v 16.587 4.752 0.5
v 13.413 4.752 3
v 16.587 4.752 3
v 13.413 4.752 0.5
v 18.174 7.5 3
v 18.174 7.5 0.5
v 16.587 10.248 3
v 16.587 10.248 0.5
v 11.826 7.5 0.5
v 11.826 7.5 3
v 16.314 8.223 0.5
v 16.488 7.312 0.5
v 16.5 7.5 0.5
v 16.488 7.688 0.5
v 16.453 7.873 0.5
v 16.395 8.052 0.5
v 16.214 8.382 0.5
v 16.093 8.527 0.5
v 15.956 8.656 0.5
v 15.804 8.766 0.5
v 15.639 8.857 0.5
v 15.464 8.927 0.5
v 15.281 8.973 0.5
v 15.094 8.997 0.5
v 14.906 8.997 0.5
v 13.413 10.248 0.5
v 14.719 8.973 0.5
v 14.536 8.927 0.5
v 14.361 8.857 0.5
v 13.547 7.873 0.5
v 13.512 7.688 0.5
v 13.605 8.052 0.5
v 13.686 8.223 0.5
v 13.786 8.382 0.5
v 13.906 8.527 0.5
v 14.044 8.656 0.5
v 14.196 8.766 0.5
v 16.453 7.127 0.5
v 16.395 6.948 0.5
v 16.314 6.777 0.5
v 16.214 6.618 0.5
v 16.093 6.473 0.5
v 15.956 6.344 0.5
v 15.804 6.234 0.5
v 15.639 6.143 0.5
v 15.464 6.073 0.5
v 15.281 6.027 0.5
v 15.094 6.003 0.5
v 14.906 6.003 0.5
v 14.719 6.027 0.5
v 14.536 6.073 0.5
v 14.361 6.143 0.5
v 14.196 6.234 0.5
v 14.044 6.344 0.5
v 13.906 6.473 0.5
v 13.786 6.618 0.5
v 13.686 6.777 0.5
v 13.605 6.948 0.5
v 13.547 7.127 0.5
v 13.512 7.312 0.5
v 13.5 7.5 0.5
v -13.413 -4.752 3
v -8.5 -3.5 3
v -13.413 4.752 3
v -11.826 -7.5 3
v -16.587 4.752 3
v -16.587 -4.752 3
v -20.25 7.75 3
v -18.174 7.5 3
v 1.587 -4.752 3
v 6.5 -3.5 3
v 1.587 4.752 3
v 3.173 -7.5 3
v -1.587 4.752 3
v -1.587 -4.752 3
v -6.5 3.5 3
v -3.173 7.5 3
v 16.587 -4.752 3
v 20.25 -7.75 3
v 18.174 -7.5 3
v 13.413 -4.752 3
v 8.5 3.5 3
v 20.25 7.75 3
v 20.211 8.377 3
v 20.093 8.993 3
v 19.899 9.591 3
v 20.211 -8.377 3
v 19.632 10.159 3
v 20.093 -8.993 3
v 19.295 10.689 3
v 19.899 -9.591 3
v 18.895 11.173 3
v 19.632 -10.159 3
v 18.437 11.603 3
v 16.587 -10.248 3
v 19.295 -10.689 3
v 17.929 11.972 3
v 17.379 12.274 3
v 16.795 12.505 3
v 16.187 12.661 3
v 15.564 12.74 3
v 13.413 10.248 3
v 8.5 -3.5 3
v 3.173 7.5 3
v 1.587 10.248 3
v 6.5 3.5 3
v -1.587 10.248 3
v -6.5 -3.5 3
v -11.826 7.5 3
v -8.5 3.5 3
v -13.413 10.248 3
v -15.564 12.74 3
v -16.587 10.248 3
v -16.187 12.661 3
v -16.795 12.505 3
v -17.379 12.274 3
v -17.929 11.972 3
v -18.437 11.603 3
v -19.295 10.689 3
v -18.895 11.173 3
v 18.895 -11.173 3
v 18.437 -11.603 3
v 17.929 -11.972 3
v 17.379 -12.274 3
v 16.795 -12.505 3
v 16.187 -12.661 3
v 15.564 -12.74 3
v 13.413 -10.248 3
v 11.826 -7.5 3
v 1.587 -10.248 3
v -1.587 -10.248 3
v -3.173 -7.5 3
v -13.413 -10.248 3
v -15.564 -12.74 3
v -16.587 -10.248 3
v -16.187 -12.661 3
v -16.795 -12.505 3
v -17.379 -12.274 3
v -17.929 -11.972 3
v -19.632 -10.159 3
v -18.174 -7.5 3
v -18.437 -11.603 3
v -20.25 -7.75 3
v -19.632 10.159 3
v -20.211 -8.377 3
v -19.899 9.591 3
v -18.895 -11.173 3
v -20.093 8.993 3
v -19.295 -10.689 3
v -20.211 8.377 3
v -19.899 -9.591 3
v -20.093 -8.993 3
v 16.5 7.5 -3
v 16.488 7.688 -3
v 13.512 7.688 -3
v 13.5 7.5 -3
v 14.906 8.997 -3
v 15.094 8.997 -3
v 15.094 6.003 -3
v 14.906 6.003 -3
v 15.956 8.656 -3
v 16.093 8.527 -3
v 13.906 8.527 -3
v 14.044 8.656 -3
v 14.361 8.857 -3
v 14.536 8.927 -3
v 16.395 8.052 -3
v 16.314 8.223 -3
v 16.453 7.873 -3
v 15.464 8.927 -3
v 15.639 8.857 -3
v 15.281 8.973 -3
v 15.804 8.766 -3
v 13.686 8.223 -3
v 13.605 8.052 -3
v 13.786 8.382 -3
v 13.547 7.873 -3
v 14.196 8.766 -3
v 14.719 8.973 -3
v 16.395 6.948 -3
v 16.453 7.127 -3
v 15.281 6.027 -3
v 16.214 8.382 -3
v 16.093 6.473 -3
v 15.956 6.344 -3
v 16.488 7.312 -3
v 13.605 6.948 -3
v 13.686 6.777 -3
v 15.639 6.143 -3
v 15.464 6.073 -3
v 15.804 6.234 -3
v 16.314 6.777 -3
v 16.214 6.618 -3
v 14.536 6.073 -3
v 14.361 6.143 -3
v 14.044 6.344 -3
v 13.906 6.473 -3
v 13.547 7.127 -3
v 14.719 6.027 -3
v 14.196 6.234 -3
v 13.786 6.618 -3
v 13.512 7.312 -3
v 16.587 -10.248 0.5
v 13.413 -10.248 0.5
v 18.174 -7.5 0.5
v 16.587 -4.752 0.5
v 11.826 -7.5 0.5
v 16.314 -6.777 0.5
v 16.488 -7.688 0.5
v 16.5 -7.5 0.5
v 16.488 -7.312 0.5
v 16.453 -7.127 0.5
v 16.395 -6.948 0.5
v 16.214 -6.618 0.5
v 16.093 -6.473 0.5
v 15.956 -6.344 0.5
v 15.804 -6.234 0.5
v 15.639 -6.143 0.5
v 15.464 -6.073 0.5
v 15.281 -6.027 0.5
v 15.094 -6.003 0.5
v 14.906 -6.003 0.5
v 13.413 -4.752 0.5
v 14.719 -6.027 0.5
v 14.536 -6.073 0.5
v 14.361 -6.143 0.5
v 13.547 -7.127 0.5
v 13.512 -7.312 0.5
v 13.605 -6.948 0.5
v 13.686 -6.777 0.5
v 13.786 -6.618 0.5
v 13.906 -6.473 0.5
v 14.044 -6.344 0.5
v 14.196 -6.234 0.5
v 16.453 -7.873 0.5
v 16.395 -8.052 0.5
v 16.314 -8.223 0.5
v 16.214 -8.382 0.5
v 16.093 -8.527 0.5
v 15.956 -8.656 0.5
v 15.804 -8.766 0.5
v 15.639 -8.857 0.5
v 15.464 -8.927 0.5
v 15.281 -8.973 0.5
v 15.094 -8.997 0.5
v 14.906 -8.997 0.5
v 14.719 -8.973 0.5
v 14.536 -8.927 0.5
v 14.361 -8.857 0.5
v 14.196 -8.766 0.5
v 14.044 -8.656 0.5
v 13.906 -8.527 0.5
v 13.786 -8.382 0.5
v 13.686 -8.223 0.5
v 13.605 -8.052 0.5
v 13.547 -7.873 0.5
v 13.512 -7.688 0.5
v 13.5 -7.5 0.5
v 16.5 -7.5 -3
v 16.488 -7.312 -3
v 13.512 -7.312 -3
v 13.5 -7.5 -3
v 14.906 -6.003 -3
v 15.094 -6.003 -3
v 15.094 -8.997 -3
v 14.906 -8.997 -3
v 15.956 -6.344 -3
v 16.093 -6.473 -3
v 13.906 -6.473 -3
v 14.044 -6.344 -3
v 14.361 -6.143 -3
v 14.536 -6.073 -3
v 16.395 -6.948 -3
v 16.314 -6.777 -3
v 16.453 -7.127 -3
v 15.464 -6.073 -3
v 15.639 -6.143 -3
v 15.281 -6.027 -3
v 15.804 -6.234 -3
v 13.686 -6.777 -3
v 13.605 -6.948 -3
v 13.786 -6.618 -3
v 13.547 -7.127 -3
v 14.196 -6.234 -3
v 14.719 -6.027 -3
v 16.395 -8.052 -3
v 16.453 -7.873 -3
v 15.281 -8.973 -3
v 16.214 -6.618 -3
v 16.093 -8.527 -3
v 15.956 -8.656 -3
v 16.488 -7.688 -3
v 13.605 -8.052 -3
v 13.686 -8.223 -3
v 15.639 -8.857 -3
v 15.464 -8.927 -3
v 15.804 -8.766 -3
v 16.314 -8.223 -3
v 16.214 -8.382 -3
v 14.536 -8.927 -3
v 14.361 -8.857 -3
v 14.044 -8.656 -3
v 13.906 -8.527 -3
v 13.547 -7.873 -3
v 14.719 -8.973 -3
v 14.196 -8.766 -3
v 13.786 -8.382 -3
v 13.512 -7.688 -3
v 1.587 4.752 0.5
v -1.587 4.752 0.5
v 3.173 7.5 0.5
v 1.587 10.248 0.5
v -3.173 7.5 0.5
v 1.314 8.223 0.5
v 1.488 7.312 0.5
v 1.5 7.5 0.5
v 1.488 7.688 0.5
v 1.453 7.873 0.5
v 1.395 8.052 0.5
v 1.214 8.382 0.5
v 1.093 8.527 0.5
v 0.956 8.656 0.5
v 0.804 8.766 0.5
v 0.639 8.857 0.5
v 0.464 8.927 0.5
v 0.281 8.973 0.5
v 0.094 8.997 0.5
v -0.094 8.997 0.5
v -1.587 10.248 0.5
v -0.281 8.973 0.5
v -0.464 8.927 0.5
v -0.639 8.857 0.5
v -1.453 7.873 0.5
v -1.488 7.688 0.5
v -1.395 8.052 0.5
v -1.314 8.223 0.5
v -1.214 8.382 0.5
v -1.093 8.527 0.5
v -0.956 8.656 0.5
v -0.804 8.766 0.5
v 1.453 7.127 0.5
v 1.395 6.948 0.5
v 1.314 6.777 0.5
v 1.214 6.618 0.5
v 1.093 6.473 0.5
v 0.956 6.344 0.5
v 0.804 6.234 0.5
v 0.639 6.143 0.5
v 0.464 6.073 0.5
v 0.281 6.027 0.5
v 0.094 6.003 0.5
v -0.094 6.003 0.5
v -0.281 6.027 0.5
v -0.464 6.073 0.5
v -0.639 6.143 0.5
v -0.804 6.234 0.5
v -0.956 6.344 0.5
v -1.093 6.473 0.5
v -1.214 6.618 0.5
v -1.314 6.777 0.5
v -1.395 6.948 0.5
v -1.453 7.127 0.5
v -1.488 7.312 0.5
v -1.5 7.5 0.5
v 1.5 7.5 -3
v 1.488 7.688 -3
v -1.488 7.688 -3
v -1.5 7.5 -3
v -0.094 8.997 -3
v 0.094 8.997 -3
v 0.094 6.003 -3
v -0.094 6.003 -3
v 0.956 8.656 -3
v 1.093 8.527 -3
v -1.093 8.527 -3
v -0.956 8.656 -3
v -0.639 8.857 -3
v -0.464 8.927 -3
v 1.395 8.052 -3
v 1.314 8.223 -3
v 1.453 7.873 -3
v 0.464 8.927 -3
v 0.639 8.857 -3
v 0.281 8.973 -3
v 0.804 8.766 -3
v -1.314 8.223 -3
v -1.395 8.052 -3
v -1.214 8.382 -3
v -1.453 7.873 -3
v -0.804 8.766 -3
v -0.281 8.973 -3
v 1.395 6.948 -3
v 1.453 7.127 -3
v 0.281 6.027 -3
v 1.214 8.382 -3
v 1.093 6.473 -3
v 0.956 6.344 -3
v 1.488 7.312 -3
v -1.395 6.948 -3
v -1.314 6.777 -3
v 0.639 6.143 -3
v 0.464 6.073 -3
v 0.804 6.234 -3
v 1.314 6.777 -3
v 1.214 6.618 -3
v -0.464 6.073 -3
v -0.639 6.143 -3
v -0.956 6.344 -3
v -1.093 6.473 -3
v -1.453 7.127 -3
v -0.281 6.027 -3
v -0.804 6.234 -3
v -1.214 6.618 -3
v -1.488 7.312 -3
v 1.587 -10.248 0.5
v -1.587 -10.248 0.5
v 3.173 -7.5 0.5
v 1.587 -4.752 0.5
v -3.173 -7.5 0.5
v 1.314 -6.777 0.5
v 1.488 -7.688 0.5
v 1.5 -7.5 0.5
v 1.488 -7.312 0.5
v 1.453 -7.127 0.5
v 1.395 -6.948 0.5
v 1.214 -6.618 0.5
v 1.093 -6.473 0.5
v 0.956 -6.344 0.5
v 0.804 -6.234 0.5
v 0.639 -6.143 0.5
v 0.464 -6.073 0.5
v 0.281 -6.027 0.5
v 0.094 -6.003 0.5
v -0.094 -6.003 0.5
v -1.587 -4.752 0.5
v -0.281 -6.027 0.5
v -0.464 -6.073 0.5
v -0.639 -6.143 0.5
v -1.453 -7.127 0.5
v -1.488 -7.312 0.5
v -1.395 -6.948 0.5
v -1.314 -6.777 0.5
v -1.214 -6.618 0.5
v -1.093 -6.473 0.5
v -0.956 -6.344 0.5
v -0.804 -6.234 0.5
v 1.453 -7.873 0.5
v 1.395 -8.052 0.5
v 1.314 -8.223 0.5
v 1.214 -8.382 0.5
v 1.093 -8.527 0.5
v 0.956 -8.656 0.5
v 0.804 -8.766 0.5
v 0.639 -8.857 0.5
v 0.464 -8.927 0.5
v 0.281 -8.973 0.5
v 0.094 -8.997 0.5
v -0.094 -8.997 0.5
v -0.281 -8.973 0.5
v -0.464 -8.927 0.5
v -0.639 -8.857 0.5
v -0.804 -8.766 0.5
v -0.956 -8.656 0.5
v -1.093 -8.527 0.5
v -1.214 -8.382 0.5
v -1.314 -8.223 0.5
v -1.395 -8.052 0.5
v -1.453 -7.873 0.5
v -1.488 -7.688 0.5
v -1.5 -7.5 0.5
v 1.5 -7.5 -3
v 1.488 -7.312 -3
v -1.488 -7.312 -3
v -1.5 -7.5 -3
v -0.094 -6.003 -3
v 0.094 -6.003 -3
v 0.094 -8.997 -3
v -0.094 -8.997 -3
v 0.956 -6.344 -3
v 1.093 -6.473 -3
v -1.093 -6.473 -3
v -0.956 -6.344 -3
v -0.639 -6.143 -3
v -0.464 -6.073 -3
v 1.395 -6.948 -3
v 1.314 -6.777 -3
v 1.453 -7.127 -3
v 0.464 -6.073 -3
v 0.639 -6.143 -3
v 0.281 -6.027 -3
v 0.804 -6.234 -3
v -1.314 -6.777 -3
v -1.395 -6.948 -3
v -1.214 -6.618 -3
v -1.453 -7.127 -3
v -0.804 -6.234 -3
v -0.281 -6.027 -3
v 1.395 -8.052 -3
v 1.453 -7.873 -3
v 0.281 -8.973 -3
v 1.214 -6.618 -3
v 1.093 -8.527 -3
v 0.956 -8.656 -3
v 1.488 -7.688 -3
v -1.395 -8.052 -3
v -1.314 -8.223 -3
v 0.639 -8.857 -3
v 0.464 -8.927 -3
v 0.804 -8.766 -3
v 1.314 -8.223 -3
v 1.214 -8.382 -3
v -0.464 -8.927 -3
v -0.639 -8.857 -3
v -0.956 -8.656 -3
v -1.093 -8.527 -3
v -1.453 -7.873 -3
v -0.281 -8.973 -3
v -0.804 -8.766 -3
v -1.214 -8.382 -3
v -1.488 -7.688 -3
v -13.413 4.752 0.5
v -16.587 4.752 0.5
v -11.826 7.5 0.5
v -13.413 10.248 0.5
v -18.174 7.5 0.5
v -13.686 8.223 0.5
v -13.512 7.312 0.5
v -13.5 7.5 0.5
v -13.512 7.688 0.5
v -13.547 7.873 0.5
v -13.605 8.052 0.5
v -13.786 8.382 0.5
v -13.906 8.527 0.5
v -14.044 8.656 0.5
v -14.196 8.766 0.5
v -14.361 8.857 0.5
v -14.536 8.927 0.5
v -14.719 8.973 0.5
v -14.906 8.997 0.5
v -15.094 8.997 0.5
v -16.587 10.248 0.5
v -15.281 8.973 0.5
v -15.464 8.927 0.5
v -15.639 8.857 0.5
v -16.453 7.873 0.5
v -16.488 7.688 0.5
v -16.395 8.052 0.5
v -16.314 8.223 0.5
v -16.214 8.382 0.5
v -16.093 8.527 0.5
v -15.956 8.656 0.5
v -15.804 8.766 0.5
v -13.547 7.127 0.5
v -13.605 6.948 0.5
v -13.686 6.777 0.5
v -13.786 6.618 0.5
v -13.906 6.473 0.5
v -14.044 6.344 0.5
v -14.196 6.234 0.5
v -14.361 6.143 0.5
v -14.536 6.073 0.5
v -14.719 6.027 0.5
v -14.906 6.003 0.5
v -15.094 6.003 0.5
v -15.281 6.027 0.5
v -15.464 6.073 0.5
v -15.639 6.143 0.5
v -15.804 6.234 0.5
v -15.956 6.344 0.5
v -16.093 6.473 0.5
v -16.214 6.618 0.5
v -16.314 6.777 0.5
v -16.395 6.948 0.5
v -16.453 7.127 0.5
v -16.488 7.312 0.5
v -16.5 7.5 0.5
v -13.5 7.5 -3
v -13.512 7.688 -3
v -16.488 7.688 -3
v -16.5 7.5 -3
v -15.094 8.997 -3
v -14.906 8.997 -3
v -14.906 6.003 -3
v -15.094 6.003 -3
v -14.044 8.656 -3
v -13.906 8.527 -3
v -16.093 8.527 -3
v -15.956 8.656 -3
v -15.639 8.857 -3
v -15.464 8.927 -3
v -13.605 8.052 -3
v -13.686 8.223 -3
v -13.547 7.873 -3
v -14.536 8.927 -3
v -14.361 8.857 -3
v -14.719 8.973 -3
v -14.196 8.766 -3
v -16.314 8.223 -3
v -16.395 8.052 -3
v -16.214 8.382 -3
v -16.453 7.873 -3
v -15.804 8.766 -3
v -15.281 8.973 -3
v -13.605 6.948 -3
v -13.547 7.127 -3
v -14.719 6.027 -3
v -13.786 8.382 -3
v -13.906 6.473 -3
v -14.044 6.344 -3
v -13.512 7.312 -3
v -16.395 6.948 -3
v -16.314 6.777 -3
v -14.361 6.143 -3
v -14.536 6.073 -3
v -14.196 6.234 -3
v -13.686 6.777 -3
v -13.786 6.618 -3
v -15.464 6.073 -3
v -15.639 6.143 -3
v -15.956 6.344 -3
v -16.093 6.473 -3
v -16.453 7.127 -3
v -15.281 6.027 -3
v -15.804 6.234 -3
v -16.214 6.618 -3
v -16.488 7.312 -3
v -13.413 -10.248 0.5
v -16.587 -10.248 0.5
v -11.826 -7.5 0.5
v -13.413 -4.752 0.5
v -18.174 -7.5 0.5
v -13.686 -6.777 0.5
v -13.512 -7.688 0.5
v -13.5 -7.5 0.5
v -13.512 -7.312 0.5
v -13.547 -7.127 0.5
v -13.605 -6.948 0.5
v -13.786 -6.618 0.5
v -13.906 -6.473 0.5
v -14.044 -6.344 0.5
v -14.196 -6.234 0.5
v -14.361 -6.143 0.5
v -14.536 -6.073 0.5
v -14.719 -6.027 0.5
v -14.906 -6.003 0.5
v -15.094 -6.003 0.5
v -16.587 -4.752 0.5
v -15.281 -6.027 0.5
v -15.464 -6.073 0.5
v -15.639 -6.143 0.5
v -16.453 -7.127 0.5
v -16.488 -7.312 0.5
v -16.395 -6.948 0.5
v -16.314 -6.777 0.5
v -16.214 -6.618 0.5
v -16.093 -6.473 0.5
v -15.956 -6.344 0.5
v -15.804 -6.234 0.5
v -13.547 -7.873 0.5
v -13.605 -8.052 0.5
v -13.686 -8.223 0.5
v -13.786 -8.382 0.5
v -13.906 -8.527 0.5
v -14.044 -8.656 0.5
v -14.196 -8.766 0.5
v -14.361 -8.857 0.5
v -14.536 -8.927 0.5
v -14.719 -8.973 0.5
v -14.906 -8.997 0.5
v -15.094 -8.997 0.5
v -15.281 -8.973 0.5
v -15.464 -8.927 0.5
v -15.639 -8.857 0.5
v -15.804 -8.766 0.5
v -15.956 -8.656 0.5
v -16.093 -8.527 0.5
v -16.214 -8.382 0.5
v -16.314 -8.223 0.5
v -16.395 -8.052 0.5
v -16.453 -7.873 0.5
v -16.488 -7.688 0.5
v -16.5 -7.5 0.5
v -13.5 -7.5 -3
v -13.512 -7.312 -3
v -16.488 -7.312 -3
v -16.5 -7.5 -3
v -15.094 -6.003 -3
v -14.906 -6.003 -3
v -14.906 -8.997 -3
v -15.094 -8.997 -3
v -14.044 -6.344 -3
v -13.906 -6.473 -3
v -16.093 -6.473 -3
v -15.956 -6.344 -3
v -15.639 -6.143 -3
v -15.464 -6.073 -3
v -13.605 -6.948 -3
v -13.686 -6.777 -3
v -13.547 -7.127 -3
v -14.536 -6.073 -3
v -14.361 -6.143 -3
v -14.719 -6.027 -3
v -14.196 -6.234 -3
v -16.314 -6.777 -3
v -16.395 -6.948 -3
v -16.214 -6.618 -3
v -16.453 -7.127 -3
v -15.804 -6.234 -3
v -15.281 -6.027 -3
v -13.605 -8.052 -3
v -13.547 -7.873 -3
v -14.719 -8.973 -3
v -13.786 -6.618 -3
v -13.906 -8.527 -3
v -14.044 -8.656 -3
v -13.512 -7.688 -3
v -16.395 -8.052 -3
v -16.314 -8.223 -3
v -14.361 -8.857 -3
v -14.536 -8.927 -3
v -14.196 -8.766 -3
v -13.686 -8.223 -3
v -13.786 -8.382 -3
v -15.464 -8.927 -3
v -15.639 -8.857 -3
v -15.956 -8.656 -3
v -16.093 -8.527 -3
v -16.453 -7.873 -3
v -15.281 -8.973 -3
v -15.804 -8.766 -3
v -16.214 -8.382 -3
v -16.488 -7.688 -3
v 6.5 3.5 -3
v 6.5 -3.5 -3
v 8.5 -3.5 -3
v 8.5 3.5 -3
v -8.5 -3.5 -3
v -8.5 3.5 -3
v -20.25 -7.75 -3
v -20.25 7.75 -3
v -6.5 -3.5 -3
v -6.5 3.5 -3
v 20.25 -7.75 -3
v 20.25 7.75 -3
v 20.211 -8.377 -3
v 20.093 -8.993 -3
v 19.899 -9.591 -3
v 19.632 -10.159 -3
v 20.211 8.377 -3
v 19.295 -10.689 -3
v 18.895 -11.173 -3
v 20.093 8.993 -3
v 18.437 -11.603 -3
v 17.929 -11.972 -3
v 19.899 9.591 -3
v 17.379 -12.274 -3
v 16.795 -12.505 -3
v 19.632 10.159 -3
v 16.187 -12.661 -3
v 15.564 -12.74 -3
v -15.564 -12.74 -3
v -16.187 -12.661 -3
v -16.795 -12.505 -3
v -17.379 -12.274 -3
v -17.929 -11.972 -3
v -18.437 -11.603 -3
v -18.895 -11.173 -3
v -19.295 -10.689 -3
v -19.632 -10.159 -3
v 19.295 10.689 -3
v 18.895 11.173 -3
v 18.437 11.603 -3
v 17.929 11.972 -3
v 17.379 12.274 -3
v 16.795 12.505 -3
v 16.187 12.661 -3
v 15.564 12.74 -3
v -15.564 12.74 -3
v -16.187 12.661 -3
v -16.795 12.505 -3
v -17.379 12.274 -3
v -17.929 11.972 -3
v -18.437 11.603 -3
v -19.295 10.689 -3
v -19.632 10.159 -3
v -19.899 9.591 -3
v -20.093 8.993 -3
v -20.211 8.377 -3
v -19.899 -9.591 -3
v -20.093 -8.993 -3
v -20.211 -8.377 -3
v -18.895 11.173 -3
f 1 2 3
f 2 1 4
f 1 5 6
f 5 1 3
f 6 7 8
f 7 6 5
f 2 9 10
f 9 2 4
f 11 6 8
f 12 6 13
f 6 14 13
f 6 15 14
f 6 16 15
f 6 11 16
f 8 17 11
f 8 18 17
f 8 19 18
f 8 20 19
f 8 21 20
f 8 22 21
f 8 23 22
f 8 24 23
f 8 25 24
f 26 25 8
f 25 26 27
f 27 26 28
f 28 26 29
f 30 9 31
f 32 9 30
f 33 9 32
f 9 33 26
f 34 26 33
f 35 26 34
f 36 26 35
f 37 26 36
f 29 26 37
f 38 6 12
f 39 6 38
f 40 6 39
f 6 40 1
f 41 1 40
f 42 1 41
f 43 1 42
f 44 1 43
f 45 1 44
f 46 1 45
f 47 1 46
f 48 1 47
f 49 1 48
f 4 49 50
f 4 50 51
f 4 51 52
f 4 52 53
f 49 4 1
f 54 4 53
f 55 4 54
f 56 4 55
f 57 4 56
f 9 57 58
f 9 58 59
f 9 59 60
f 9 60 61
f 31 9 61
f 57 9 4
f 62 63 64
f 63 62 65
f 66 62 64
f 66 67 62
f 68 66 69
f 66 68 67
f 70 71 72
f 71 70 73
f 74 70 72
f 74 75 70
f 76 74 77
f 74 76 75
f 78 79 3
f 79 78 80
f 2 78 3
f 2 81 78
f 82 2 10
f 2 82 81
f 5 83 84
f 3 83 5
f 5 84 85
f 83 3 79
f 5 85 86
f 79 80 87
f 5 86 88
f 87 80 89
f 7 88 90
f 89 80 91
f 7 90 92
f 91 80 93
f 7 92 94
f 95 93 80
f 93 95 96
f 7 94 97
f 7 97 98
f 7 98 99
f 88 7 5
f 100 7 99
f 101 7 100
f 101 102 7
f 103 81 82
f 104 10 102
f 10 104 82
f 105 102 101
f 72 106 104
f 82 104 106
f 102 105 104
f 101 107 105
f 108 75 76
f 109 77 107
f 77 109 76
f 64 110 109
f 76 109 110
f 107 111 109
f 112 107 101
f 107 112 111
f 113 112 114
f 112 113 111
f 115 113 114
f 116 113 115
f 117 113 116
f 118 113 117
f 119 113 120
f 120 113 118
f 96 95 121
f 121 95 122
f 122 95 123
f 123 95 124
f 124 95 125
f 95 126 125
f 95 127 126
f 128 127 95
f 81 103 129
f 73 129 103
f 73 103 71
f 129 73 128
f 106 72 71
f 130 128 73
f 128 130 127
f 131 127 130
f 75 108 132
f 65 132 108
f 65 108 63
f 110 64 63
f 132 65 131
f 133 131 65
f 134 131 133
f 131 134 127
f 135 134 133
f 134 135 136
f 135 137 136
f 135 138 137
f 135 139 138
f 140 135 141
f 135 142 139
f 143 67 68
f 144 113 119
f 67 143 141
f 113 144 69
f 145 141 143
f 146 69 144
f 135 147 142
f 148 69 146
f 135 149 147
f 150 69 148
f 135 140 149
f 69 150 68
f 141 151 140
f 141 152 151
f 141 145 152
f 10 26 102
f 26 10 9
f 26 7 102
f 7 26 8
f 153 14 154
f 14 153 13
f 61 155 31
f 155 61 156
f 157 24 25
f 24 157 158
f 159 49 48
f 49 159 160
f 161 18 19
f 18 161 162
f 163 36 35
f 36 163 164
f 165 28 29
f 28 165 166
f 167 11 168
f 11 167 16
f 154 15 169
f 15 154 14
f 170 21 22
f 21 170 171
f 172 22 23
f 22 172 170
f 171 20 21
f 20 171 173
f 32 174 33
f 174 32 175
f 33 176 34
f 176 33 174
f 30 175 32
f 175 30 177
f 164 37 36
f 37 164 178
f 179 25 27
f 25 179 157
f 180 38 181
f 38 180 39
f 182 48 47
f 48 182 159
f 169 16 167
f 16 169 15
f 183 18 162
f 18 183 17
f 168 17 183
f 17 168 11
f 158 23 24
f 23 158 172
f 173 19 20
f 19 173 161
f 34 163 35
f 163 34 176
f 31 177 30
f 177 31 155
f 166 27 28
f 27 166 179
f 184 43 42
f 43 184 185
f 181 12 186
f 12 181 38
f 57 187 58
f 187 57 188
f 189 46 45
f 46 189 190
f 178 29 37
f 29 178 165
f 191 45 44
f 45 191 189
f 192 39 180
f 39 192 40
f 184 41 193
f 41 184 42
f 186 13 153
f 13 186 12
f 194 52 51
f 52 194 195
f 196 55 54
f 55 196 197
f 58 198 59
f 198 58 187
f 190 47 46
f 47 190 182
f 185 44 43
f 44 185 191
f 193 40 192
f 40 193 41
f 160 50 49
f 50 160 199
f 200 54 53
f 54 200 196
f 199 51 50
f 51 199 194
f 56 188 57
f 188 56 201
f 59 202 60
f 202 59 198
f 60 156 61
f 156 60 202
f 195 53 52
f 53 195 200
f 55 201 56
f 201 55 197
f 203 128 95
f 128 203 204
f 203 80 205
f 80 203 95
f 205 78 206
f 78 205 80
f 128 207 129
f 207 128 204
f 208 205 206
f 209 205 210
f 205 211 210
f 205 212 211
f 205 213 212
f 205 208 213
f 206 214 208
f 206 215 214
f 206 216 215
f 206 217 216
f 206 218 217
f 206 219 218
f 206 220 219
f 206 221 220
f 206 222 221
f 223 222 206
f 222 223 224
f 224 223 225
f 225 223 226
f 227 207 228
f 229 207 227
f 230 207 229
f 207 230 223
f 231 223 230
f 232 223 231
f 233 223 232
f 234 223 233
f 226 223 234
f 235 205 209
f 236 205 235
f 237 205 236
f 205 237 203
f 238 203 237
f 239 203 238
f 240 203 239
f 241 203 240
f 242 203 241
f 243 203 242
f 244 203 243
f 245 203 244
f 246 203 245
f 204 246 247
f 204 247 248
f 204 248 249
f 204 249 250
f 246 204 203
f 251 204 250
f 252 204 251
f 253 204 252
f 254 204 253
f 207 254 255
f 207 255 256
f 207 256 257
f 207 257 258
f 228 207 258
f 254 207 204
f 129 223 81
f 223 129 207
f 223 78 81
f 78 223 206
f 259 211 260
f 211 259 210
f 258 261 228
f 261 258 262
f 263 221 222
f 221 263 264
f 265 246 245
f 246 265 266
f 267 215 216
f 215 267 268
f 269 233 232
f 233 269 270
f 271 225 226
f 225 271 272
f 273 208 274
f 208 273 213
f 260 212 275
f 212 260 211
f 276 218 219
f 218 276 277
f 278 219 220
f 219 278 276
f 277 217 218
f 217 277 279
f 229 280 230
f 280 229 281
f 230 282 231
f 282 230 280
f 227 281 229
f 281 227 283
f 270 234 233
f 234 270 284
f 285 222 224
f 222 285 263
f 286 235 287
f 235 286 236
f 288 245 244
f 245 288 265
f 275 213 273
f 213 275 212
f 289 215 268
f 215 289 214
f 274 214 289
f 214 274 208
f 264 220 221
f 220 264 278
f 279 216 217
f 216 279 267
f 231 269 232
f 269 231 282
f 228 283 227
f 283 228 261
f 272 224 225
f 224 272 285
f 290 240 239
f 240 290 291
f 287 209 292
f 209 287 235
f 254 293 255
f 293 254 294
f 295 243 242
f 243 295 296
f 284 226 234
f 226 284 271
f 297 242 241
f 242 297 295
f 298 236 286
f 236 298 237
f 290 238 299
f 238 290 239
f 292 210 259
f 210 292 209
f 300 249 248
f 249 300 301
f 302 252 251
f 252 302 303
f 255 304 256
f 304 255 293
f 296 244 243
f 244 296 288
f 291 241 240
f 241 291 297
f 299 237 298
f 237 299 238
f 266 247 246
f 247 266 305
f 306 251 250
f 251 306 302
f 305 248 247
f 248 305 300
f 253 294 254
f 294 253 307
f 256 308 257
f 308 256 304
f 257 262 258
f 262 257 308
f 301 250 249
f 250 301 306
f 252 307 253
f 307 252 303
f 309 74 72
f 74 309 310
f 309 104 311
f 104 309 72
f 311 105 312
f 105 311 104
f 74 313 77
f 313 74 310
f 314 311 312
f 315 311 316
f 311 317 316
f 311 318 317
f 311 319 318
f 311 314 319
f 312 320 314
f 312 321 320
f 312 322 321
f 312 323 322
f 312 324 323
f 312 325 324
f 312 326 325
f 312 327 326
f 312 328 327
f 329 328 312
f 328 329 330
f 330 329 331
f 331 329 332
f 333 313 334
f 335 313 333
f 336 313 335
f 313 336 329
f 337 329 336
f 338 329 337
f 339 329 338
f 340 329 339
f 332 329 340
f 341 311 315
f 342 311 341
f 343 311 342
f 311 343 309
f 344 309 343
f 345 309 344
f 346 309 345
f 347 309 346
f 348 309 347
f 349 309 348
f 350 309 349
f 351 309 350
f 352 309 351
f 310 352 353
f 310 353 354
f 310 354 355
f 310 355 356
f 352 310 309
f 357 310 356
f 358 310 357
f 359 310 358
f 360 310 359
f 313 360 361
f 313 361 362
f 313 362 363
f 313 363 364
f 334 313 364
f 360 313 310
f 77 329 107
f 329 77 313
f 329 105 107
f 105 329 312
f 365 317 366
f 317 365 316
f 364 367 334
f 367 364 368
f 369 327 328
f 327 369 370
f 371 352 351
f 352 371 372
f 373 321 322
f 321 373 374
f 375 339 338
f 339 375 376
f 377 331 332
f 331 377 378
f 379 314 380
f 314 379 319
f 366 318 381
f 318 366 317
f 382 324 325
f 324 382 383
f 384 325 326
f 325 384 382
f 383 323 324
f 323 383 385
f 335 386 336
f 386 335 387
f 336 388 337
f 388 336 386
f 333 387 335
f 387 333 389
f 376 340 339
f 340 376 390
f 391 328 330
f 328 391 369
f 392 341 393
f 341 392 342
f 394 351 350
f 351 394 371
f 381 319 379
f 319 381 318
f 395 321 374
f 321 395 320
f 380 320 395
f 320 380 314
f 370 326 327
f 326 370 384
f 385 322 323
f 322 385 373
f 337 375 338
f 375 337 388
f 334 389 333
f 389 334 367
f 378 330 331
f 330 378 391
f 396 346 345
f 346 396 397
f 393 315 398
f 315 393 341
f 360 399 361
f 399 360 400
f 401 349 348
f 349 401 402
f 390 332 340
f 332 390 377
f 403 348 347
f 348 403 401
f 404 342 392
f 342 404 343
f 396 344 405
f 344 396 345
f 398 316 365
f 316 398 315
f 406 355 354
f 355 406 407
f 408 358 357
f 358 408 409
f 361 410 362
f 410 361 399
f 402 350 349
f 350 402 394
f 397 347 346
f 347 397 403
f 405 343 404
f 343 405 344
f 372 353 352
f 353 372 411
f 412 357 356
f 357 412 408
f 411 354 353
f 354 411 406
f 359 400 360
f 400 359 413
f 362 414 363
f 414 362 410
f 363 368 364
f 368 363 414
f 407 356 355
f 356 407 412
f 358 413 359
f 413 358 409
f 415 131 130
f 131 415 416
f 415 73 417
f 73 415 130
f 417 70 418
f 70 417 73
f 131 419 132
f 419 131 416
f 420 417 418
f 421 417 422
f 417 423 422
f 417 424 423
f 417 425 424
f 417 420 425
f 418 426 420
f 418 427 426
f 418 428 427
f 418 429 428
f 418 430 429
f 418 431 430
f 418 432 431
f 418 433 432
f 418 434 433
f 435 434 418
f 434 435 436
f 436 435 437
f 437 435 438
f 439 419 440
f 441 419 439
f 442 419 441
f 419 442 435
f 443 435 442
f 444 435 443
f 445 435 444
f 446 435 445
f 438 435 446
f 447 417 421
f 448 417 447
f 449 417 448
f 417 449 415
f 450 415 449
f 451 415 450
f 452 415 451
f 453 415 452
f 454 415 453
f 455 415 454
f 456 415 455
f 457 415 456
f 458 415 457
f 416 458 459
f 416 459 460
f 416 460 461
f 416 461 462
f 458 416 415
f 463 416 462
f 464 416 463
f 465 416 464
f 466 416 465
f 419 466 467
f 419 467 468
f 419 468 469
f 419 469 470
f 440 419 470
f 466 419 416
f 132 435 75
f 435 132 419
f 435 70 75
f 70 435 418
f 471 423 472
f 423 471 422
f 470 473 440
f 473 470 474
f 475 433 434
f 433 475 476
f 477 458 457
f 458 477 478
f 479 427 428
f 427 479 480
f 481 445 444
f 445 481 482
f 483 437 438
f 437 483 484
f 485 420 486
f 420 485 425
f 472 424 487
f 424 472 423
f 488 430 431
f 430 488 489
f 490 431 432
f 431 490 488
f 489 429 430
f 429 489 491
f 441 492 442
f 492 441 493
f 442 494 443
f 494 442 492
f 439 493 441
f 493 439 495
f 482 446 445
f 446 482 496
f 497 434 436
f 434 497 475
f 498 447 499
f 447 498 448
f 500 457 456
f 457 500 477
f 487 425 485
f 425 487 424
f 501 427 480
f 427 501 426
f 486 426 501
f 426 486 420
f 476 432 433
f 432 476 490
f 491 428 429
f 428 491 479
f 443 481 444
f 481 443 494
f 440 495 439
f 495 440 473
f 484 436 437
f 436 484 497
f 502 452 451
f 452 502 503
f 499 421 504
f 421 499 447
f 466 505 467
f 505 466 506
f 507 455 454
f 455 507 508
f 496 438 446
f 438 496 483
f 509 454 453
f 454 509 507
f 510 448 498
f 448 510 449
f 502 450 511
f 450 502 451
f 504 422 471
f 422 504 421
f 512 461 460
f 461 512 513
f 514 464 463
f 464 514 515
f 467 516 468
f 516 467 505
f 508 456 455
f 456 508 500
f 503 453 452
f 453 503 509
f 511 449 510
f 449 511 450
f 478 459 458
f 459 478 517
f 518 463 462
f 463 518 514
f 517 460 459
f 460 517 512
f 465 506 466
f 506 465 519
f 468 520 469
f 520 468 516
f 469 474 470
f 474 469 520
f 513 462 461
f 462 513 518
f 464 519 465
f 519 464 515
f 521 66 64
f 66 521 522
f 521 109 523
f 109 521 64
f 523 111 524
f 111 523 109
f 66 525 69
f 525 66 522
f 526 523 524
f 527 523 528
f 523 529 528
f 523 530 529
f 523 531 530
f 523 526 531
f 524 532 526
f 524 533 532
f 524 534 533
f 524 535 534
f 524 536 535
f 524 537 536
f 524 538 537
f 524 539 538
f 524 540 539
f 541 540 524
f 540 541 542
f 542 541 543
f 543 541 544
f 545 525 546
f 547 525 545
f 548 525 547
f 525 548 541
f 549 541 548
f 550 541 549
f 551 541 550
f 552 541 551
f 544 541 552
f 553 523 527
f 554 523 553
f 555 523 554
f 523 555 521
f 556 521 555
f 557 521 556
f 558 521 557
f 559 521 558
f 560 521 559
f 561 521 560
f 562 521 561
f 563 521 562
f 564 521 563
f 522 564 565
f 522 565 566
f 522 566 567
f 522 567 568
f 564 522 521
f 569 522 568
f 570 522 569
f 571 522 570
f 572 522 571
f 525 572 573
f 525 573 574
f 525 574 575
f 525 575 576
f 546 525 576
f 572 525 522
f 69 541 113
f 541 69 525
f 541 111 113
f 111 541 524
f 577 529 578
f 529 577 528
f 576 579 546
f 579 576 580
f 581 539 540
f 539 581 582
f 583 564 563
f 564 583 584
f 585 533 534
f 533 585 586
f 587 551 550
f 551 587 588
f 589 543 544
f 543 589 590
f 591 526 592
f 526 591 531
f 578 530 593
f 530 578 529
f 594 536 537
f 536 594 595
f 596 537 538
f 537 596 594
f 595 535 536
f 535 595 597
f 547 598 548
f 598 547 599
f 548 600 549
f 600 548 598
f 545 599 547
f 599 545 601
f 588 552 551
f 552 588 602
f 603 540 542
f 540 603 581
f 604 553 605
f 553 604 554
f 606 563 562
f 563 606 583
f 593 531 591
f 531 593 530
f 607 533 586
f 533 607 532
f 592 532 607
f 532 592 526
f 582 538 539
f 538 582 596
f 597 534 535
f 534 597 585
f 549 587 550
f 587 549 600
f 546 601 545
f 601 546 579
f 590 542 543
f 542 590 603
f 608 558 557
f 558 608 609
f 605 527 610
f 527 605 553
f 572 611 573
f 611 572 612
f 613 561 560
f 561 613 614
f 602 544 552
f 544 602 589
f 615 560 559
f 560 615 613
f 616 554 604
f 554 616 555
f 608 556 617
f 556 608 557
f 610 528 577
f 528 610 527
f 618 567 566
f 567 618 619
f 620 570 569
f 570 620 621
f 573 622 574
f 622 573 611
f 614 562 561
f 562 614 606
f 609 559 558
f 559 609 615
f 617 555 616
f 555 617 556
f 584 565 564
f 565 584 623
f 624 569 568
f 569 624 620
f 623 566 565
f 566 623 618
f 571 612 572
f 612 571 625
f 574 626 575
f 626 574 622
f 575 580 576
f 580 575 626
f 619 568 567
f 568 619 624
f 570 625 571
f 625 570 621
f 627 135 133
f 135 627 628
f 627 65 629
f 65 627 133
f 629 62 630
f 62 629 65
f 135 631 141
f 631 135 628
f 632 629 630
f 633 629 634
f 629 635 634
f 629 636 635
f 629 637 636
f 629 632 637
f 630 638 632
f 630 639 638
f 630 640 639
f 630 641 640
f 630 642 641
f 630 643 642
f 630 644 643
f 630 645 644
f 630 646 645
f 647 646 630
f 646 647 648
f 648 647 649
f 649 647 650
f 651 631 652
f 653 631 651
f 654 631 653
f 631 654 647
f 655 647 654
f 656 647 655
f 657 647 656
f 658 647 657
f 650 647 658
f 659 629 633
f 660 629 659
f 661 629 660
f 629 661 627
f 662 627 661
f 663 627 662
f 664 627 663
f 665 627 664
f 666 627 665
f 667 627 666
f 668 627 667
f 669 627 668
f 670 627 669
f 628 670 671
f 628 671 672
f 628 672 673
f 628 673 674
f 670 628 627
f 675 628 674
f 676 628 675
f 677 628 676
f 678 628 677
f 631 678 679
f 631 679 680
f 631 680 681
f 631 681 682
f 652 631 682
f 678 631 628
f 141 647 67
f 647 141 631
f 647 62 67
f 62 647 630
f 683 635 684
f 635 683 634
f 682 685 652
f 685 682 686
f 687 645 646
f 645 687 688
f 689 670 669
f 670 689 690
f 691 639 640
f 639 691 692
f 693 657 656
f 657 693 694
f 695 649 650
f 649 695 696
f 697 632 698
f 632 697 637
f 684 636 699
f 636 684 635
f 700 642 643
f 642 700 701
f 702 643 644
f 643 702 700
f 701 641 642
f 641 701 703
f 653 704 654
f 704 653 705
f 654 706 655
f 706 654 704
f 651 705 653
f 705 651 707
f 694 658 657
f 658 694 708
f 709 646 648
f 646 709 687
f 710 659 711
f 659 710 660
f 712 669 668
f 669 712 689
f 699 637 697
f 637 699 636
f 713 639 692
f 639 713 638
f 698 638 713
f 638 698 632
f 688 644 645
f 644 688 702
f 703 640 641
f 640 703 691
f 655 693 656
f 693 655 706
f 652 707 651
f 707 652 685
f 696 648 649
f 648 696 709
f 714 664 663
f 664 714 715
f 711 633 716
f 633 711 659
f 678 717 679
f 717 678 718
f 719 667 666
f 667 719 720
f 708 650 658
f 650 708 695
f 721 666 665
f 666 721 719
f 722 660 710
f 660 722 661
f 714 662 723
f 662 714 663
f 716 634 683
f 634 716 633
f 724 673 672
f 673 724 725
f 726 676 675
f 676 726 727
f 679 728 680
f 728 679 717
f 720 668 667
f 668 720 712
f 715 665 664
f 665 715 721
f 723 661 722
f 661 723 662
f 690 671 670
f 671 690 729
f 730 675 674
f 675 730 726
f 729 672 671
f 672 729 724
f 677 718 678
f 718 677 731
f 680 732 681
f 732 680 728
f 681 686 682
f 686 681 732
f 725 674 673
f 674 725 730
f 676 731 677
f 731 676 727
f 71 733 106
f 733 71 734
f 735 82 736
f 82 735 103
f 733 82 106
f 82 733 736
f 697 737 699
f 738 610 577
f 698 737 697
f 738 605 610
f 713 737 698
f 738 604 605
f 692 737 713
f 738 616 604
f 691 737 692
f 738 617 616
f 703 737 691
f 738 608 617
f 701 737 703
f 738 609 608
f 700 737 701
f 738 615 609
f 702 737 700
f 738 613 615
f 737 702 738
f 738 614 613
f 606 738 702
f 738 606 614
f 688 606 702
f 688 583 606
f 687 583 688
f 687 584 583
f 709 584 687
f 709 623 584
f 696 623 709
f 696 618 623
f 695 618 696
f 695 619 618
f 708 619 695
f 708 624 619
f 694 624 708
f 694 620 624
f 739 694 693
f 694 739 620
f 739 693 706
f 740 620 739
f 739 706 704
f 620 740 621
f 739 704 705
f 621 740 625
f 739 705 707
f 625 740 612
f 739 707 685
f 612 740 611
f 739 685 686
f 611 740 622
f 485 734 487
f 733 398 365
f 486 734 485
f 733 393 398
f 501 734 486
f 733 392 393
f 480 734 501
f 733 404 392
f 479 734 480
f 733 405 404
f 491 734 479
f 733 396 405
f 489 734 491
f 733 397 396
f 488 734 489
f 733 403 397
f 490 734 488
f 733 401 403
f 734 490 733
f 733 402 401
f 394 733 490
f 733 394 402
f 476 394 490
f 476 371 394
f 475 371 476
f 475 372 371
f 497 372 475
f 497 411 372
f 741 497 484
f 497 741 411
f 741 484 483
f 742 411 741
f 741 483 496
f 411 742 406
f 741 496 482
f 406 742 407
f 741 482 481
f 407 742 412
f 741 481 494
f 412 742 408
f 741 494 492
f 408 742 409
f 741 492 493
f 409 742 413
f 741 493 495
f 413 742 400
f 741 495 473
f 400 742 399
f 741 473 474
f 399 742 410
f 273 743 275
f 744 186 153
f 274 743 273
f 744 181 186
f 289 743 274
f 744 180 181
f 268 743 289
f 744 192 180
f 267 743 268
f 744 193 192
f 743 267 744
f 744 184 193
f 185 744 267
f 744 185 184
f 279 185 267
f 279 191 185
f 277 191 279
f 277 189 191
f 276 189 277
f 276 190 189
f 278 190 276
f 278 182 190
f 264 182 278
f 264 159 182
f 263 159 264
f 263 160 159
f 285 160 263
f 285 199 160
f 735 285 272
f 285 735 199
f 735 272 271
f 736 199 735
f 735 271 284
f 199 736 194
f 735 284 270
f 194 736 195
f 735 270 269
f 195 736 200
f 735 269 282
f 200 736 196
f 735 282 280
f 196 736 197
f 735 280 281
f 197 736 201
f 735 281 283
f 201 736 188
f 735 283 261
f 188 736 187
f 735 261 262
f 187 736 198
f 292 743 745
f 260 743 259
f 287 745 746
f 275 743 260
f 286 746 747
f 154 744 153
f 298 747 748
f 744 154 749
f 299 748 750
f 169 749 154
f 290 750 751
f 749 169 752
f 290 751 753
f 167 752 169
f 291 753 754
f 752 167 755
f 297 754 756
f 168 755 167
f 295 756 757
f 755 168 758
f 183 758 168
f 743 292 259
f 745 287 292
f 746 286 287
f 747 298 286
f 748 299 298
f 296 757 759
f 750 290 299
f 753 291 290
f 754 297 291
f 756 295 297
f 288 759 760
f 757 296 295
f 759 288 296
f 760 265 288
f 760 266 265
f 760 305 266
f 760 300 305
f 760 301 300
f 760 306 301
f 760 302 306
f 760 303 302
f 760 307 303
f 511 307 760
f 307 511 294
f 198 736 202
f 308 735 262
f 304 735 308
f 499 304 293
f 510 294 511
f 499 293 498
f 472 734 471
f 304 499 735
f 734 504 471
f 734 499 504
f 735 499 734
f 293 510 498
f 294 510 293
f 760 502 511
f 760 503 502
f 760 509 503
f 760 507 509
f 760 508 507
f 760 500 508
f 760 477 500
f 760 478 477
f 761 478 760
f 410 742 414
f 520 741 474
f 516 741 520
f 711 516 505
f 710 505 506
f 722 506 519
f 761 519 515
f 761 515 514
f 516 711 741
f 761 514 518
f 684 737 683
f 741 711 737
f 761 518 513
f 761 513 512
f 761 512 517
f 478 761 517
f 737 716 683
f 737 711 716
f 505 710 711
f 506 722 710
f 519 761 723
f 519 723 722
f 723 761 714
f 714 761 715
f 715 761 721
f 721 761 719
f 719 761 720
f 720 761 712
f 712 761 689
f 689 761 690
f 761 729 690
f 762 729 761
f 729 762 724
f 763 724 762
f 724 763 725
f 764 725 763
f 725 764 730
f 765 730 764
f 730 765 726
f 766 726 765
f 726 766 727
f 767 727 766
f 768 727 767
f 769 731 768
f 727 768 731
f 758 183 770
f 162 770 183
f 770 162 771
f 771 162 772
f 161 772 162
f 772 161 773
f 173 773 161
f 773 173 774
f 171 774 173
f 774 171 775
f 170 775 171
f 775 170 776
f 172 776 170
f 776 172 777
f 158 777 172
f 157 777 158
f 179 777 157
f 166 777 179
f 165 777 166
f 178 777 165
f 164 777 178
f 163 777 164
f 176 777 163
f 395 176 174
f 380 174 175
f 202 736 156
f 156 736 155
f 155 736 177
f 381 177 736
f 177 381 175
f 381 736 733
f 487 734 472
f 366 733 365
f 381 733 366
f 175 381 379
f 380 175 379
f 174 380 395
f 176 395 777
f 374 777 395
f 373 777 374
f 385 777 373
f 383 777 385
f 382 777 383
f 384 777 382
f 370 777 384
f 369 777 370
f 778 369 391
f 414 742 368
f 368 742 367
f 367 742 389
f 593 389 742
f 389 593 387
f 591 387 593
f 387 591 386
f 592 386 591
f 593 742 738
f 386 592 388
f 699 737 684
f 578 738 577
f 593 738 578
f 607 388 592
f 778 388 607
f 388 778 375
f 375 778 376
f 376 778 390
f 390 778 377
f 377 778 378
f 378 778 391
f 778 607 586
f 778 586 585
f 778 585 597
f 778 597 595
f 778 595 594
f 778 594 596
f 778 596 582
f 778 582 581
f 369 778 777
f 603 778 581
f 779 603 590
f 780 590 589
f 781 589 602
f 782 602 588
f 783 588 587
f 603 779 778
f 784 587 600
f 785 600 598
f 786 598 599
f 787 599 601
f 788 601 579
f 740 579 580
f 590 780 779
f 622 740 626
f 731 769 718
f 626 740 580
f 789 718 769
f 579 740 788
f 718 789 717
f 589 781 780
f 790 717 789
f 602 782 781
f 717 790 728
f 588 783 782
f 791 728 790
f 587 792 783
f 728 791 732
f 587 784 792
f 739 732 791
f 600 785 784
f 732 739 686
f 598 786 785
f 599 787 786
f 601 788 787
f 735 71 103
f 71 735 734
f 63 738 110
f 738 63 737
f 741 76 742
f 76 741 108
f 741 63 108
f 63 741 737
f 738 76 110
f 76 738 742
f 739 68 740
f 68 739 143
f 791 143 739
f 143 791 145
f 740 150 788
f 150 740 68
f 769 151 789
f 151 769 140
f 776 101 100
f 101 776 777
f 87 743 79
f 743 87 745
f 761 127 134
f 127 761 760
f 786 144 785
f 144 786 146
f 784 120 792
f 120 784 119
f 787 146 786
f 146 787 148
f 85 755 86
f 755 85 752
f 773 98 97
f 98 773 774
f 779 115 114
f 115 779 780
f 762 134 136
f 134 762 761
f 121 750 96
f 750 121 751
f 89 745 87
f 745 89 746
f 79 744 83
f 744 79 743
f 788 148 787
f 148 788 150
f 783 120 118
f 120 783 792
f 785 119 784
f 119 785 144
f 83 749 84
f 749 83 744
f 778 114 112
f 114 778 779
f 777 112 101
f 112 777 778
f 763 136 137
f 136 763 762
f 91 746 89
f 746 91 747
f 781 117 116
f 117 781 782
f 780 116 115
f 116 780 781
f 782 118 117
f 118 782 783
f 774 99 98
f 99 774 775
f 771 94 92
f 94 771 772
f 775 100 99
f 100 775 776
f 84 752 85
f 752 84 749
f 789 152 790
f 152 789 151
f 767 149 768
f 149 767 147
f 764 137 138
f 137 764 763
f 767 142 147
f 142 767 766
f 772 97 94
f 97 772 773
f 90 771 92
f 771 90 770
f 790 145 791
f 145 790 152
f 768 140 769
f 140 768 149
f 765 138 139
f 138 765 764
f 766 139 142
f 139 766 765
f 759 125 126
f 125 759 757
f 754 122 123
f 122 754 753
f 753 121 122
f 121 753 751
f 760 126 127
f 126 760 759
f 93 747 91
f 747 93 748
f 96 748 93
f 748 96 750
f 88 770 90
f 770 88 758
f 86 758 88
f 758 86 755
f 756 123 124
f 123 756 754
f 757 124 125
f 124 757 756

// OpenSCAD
$fn = 50;


difference() {
	union() {
		translate(v = [0, 0, -3.0000000000]) {
			hull() {
				translate(v = [-15.2500000000, 7.7500000000, 0]) {
					cylinder(h = 6, r = 5);
				}
				translate(v = [15.2500000000, 7.7500000000, 0]) {
					cylinder(h = 6, r = 5);
				}
				translate(v = [-15.2500000000, -7.7500000000, 0]) {
					cylinder(h = 6, r = 5);
				}
				translate(v = [15.2500000000, -7.7500000000, 0]) {
					cylinder(h = 6, r = 5);
				}
			}
		}
	}
	union() {
		translate(v = [15, 7.5000000000, 3.0000000000]) {
			rotate(a = [0, 0, 0]) {
				difference() {
					union() {
						translate(v = [0, 0, -2.5000000000]) {
							linear_extrude(height = 2.5000000000) {
								polygon(points = [[3.1735000000, 0.0000000000], [1.5867500000, 2.7483316189], [-1.5867500000, 2.7483316189], [-3.1735000000, 0.0000000000], [-1.5867500000, -2.7483316189], [1.5867500000, -2.7483316189]]);
							}
						}
						translate(v = [0, 0, -100.0000000000]) {
							cylinder(h = 200, r = 1.5000000000);
						}
						translate(v = [0, 0, -100.0000000000]) {
							cylinder(h = 200, r = 1.5000000000);
						}
						translate(v = [0, 0, -100.0000000000]) {
							cylinder(h = 200, r = 1.5000000000);
						}
					}
					union();
				}
			}
		}
		translate(v = [15, -7.5000000000, 3.0000000000]) {
			rotate(a = [0, 0, 0]) {
				difference() {
					union() {
						translate(v = [0, 0, -2.5000000000]) {
							linear_extrude(height = 2.5000000000) {
								polygon(points = [[3.1735000000, 0.0000000000], [1.5867500000, 2.7483316189], [-1.5867500000, 2.7483316189], [-3.1735000000, 0.0000000000], [-1.5867500000, -2.7483316189], [1.5867500000, -2.7483316189]]);
							}
						}
						translate(v = [0, 0, -100.0000000000]) {
							cylinder(h = 200, r = 1.5000000000);
						}
						translate(v = [0, 0, -100.0000000000]) {
							cylinder(h = 200, r = 1.5000000000);
						}
						translate(v = [0, 0, -100.0000000000]) {
							cylinder(h = 200, r = 1.5000000000);
						}
					}
					union();
				}
			}
		}
		translate(v = [0, 7.5000000000, 3.0000000000]) {
			rotate(a = [0, 0, 0]) {
				difference() {
					union() {
						translate(v = [0, 0, -2.5000000000]) {
							linear_extrude(height = 2.5000000000) {
								polygon(points = [[3.1735000000, 0.0000000000], [1.5867500000, 2.7483316189], [-1.5867500000, 2.7483316189], [-3.1735000000, 0.0000000000], [-1.5867500000, -2.7483316189], [1.5867500000, -2.7483316189]]);
							}
						}
						translate(v = [0, 0, -100.0000000000]) {
							cylinder(h = 200, r = 1.5000000000);
						}
						translate(v = [0, 0, -100.0000000000]) {
							cylinder(h = 200, r = 1.5000000000);
						}
						translate(v = [0, 0, -100.0000000000]) {
							cylinder(h = 200, r = 1.5000000000);
						}
					}
					union();
				}
			}
		}
		translate(v = [0, -7.5000000000, 3.0000000000]) {
			rotate(a = [0, 0, 0]) {
				difference() {
					union() {
						translate(v = [0, 0, -2.5000000000]) {
							linear_extrude(height = 2.5000000000) {
								polygon(points = [[3.1735000000, 0.0000000000], [1.5867500000, 2.7483316189], [-1.5867500000, 2.7483316189], [-3.1735000000, 0.0000000000], [-1.5867500000, -2.7483316189], [1.5867500000, -2.7483316189]]);
							}
						}
						translate(v = [0, 0, -100.0000000000]) {
							cylinder(h = 200, r = 1.5000000000);
						}
						translate(v = [0, 0, -100.0000000000]) {
							cylinder(h = 200, r = 1.5000000000);
						}
						translate(v = [0, 0, -100.0000000000]) {
							cylinder(h = 200, r = 1.5000000000);
						}
					}
					union();
				}
			}
		}
		translate(v = [-15, 7.5000000000, 3.0000000000]) {
			rotate(a = [0, 0, 0]) {
				difference() {
					union() {
						translate(v = [0, 0, -2.5000000000]) {
							linear_extrude(height = 2.5000000000) {
								polygon(points = [[3.1735000000, 0.0000000000], [1.5867500000, 2.7483316189], [-1.5867500000, 2.7483316189], [-3.1735000000, 0.0000000000], [-1.5867500000, -2.7483316189], [1.5867500000, -2.7483316189]]);
							}
						}
						translate(v = [0, 0, -100.0000000000]) {
							cylinder(h = 200, r = 1.5000000000);
						}
						translate(v = [0, 0, -100.0000000000]) {
							cylinder(h = 200, r = 1.5000000000);
						}
						translate(v = [0, 0, -100.0000000000]) {
							cylinder(h = 200, r = 1.5000000000);
						}
					}
					union();
				}
			}
		}
		translate(v = [-15, -7.5000000000, 3.0000000000]) {
			rotate(a = [0, 0, 0]) {
				difference() {
					union() {
						translate(v = [0, 0, -2.5000000000]) {
							linear_extrude(height = 2.5000000000) {
								polygon(points = [[3.1735000000, 0.0000000000], [1.5867500000, 2.7483316189], [-1.5867500000, 2.7483316189], [-3.1735000000, 0.0000000000], [-1.5867500000, -2.7483316189], [1.5867500000, -2.7483316189]]);
							}
						}
						translate(v = [0, 0, -100.0000000000]) {
							cylinder(h = 200, r = 1.5000000000);
						}
						translate(v = [0, 0, -100.0000000000]) {
							cylinder(h = 200, r = 1.5000000000);
						}
						translate(v = [0, 0, -100.0000000000]) {
							cylinder(h = 200, r = 1.5000000000);
						}
					}
					union();
				}
			}
		}
		#translate(v = [6.5000000000, -3.5000000000, -3.0000000000]) {
			cube(size = [2, 7, 6]);
		}
		#translate(v = [-8.5000000000, -3.5000000000, -3.0000000000]) {
			cube(size = [2, 7, 6]);
		}
	}
}
